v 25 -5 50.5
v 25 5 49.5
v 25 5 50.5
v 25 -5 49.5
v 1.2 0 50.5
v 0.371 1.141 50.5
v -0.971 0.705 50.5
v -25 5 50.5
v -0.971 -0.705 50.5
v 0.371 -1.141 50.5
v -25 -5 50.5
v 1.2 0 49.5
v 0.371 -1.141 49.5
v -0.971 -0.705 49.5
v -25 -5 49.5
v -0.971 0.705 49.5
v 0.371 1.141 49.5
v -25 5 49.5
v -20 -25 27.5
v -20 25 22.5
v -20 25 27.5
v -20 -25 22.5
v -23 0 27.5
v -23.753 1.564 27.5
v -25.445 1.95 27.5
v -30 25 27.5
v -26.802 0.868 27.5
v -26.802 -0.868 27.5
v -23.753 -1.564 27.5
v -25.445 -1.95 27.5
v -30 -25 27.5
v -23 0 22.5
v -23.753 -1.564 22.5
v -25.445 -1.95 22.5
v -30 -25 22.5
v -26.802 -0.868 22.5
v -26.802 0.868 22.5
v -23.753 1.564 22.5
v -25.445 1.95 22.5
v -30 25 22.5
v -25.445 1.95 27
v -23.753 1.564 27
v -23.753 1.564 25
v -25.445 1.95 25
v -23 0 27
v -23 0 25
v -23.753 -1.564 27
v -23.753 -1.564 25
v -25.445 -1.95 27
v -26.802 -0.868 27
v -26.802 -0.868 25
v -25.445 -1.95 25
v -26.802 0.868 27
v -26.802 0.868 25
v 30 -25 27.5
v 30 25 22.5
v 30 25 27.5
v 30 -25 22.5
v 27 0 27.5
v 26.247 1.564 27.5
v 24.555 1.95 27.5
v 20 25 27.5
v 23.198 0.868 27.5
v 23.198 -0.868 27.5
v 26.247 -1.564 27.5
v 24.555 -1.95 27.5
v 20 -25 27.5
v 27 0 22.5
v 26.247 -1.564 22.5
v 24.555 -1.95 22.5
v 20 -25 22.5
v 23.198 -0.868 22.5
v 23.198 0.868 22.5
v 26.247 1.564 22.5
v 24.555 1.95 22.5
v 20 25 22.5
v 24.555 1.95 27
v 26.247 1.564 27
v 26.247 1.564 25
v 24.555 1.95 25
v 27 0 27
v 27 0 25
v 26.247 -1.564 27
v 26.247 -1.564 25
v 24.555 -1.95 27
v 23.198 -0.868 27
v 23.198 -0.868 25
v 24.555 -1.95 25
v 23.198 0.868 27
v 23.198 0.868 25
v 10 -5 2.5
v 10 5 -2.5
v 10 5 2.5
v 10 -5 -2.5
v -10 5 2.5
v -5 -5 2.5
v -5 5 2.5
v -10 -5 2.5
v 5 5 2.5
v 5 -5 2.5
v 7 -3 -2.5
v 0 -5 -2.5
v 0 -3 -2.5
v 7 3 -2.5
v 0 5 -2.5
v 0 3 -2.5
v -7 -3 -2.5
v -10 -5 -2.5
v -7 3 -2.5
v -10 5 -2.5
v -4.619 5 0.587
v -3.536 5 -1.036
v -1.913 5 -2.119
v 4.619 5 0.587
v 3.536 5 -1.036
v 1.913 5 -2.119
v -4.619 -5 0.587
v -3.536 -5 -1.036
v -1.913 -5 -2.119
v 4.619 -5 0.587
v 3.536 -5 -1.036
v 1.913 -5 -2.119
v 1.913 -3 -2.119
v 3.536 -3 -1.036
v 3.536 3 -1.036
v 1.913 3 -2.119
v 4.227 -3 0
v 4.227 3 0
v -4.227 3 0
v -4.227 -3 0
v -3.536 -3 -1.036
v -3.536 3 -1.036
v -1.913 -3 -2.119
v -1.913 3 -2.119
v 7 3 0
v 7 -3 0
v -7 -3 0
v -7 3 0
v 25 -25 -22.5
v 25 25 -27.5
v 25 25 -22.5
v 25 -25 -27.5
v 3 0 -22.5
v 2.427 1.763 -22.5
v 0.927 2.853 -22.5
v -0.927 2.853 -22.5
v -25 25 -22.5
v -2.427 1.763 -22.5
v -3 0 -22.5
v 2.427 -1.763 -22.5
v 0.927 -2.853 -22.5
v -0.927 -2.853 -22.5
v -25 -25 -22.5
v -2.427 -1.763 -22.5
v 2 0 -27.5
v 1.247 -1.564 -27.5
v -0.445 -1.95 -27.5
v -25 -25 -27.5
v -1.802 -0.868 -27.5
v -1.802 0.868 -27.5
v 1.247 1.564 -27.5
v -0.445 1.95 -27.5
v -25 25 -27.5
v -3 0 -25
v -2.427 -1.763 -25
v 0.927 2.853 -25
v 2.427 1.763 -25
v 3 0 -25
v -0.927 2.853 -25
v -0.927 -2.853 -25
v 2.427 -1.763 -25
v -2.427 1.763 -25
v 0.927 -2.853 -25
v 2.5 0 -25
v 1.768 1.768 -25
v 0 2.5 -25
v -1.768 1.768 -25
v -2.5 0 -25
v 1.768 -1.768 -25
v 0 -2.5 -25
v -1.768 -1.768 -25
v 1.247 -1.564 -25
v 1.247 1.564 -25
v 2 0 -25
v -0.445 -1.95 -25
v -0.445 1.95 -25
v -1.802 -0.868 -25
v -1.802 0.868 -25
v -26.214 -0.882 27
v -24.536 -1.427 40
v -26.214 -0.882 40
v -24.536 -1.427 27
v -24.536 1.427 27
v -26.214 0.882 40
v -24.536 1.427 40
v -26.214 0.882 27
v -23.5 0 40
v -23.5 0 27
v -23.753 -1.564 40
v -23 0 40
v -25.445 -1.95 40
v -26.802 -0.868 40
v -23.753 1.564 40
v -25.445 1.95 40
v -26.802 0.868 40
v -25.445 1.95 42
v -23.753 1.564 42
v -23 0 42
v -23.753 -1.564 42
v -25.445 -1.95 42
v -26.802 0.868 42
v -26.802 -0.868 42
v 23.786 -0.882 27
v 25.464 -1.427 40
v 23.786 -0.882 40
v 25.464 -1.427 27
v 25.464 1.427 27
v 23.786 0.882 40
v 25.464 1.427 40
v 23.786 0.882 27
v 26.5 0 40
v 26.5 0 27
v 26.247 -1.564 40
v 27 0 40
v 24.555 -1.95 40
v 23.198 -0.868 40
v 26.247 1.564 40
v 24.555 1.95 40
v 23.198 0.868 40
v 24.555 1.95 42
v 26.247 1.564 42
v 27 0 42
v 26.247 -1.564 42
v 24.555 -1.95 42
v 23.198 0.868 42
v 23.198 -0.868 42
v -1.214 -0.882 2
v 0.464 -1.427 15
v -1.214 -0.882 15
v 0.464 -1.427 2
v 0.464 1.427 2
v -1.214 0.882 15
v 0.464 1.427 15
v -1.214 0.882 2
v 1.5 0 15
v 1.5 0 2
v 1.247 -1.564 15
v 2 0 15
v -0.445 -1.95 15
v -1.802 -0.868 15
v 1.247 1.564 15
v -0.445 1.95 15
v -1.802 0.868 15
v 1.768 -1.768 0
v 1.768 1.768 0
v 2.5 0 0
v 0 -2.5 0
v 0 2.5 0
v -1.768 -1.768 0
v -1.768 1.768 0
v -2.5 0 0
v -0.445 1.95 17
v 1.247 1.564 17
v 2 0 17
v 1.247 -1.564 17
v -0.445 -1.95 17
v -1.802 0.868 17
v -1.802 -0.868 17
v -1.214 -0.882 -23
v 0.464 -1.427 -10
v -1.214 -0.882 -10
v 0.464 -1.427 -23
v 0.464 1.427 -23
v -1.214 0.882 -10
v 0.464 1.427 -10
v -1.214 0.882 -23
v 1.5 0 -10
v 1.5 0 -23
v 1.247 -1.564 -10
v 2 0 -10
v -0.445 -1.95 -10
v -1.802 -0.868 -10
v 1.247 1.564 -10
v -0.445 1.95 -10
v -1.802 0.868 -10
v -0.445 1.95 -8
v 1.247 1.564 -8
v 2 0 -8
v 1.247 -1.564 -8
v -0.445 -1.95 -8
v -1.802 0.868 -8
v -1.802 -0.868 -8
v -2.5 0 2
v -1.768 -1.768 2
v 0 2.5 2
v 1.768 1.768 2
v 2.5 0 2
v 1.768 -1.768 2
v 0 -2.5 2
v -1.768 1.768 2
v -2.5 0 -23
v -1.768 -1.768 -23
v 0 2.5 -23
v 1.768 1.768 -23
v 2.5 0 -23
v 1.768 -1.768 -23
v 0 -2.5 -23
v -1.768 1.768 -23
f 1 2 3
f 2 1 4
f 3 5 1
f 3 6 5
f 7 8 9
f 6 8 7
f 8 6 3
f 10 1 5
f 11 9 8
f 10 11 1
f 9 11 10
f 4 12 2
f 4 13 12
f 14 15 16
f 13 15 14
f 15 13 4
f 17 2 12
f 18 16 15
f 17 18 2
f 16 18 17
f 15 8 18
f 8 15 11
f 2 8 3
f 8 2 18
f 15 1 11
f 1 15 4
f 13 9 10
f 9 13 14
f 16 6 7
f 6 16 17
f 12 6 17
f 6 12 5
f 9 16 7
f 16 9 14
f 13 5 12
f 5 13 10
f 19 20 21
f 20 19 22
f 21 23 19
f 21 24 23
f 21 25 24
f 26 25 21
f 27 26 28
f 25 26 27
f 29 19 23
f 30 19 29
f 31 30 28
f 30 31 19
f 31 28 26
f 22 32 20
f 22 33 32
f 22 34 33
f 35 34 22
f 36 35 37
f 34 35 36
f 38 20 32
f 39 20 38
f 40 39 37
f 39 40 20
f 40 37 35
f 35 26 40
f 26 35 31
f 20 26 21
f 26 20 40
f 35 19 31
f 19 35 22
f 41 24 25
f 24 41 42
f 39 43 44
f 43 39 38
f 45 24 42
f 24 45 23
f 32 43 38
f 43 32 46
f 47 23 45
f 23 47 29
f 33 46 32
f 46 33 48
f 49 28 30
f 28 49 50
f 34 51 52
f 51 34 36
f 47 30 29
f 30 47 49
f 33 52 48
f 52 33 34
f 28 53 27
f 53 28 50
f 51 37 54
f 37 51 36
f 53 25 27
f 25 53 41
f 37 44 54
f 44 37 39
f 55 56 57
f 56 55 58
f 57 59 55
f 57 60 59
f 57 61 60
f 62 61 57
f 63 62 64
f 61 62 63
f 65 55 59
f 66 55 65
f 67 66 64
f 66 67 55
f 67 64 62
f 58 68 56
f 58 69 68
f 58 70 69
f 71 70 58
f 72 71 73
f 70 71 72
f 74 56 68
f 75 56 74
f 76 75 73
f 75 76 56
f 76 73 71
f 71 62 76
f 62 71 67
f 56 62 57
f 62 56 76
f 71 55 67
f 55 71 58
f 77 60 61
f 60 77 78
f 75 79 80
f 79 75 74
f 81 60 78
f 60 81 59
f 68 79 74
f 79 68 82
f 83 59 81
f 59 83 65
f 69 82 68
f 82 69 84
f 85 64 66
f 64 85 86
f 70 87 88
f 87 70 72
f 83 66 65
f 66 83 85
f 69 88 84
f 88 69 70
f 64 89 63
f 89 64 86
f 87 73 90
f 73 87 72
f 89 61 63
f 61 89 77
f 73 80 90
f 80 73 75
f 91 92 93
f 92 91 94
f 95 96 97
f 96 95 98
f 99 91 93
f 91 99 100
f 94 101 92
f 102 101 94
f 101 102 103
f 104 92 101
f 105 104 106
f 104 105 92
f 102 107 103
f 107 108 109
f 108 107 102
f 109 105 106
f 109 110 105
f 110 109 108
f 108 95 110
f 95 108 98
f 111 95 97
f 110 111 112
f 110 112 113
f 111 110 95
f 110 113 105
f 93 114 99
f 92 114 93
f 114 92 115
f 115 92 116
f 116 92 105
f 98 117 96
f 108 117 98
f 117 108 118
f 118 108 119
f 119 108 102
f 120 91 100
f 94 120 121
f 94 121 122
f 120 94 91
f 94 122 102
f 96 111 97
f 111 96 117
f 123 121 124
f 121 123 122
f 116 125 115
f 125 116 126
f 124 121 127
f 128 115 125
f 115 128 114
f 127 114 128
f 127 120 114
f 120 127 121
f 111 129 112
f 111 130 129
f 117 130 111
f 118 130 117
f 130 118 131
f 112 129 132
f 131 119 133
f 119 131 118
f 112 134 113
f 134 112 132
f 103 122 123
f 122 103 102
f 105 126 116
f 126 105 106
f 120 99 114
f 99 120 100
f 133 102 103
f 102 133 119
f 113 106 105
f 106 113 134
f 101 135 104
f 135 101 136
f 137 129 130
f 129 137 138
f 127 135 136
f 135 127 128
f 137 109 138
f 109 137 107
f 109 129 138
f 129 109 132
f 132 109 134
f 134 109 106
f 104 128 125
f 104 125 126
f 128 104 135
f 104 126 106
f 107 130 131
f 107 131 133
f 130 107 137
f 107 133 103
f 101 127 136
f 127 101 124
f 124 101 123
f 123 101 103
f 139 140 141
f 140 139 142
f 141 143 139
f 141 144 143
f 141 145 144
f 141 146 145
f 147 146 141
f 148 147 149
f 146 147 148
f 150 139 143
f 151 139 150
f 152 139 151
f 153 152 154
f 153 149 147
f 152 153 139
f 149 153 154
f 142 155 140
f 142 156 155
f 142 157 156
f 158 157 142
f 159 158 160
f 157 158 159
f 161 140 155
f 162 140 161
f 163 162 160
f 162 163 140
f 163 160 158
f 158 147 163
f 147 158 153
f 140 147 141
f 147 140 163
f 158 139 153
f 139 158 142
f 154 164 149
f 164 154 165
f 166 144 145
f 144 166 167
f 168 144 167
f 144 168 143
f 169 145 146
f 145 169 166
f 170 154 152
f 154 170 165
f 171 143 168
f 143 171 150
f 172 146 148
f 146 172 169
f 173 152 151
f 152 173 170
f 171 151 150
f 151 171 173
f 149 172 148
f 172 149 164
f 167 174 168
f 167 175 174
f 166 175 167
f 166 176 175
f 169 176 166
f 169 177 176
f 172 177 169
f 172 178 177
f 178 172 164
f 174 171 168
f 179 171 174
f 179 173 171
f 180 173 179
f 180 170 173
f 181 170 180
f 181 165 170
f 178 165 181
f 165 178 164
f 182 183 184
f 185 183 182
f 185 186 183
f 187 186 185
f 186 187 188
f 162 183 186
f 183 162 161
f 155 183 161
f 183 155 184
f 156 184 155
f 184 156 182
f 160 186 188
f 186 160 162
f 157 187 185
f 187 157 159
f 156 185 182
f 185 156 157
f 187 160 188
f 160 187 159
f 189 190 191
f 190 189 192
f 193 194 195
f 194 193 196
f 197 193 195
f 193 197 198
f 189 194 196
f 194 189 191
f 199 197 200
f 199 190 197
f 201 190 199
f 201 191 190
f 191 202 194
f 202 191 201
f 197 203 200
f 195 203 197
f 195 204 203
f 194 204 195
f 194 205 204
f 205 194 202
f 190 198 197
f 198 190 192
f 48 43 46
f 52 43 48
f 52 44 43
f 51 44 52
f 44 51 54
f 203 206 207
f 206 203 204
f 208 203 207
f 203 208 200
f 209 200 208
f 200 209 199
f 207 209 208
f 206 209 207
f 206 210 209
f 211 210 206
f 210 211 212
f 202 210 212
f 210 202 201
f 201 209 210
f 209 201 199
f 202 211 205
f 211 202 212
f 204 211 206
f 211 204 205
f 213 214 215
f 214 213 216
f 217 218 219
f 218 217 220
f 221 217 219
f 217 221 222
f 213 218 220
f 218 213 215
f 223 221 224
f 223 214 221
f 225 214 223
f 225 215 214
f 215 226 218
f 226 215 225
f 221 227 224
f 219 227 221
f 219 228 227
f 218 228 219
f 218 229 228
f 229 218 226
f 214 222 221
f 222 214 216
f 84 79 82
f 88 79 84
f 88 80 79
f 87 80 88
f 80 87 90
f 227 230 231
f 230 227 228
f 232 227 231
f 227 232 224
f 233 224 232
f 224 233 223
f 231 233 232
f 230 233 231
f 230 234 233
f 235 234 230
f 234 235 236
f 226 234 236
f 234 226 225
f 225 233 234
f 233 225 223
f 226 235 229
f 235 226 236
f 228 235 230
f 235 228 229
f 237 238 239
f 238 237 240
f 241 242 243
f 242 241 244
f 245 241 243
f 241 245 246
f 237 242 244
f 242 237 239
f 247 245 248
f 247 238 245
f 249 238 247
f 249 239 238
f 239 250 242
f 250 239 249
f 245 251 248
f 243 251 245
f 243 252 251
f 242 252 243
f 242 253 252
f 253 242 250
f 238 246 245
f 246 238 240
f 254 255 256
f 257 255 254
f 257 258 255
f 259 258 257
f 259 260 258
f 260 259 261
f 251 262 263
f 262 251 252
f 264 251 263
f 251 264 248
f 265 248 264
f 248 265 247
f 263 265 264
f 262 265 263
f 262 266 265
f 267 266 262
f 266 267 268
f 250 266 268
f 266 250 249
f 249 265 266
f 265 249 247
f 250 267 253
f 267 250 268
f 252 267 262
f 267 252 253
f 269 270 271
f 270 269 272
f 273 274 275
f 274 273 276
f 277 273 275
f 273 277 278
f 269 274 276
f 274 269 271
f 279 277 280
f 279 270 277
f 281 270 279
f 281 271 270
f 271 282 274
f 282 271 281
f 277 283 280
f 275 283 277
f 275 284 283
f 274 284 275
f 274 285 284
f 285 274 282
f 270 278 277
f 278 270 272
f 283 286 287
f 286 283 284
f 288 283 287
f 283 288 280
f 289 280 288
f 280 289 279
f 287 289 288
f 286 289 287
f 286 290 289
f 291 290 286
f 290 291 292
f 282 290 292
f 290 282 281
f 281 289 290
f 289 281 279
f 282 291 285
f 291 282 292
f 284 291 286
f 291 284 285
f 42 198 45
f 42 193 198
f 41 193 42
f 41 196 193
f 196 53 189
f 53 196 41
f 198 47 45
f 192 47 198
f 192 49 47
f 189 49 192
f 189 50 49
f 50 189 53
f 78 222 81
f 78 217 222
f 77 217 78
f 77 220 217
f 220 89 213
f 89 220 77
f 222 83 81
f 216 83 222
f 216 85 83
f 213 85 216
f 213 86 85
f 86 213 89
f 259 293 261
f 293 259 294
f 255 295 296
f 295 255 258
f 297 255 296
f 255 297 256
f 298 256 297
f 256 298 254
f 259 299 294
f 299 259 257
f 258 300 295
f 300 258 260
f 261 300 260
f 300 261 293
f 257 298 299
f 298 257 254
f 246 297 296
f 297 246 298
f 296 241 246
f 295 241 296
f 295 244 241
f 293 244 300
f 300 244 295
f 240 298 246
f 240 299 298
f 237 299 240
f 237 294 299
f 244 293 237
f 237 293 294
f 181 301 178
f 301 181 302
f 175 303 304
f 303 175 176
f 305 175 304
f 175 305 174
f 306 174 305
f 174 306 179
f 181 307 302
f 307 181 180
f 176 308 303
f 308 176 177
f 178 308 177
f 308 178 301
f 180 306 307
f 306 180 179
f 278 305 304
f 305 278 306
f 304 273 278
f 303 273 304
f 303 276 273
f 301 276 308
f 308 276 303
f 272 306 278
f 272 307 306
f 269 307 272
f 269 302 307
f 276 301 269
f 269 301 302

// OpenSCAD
// Base Plate
module base_plate() {
    difference() {
        cube([50, 50, 5], center = true); // Main rectangular plate
        translate([0, 0, 2.5]) cylinder(r = 3, h = 5, center = true); // Reduced protrusion size
        translate([0, 0, -2.5]) cylinder(r = 2, h = 10, center = true); // Repositioned hole to align with the center
    }
}

// Side Plate
module side_plate() {
    difference() {
        cube([10, 50, 5], center = true); // Main rectangular plate
        translate([0, 0, -2.5]) cylinder(r = 2, h = 10, center = true); // Hole repositioned closer to the center
    }
}

// Connector Plate
module connector_plate() {
    difference() {
        cube([50, 10, 1], center = true); // Reduced thickness of the rectangular plate
        translate([0, 0, -0.5]) cylinder(r = 1.2, h = 3, center = true); // Adjusted hole size
    }
}

// Support Bracket
module support_bracket() {
    difference() {
        cube([20, 10, 5], center = true); // Main bracket
        translate([0, 0, 2.5]) rotate([90, 0, 0]) cylinder(r = 5, h = 10, center = true); // More pronounced curve on the edge
        translate([0, 0, -2.5]) cube([14, 6, 5], center = true); // Enlarged rectangular cutout
    }
}

// Fastener Bolt
module fastener_bolt() {
    union() {
        cylinder(r = 1.5, h = 15, center = false); // Reduced bolt shaft length
        translate([0, 0, 15]) cylinder(r = 2, h = 2, center = false); // Bolt head
    }
}

// Fastener Nut
module fastener_nut() {
    difference() {
        cylinder(r = 2.5, h = 2, center = false); // Reduced hexagonal nut size
        translate([0, 0, 1]) cylinder(r = 1.5, h = 4, center = true); // Threading inside
        // Rounded edges for the nut
        translate([0, 0, 0]) sphere(r = 0.5);
        translate([0, 0, 2]) sphere(r = 0.5);
    }
}

// Assembly
module assembly() {
    // Layer 1: Connector Plate
    translate([0, 0, 50]) connector_plate();

    // Layer 2: Side Plates
    translate([-25, 0, 25]) side_plate();
    translate([25, 0, 25]) side_plate();

    // Layer 3: Support Bracket
    translate([0, 0, 0]) support_bracket();

    // Layer 4: Base Plate
    translate([0, 0, -25]) base_plate();

    // Fasteners
    translate([-25, 0, 25]) fastener_bolt();
    translate([25, 0, 25]) fastener_bolt();
    translate([0, 0, 0]) fastener_bolt();
    translate([0, 0, -25]) fastener_bolt();

    translate([-25, 0, 25]) fastener_nut();
    translate([25, 0, 25]) fastener_nut();
    translate([0, 0, 0]) fastener_nut();
    translate([0, 0, -25]) fastener_nut();
}

// Render the assembly
assembly();
